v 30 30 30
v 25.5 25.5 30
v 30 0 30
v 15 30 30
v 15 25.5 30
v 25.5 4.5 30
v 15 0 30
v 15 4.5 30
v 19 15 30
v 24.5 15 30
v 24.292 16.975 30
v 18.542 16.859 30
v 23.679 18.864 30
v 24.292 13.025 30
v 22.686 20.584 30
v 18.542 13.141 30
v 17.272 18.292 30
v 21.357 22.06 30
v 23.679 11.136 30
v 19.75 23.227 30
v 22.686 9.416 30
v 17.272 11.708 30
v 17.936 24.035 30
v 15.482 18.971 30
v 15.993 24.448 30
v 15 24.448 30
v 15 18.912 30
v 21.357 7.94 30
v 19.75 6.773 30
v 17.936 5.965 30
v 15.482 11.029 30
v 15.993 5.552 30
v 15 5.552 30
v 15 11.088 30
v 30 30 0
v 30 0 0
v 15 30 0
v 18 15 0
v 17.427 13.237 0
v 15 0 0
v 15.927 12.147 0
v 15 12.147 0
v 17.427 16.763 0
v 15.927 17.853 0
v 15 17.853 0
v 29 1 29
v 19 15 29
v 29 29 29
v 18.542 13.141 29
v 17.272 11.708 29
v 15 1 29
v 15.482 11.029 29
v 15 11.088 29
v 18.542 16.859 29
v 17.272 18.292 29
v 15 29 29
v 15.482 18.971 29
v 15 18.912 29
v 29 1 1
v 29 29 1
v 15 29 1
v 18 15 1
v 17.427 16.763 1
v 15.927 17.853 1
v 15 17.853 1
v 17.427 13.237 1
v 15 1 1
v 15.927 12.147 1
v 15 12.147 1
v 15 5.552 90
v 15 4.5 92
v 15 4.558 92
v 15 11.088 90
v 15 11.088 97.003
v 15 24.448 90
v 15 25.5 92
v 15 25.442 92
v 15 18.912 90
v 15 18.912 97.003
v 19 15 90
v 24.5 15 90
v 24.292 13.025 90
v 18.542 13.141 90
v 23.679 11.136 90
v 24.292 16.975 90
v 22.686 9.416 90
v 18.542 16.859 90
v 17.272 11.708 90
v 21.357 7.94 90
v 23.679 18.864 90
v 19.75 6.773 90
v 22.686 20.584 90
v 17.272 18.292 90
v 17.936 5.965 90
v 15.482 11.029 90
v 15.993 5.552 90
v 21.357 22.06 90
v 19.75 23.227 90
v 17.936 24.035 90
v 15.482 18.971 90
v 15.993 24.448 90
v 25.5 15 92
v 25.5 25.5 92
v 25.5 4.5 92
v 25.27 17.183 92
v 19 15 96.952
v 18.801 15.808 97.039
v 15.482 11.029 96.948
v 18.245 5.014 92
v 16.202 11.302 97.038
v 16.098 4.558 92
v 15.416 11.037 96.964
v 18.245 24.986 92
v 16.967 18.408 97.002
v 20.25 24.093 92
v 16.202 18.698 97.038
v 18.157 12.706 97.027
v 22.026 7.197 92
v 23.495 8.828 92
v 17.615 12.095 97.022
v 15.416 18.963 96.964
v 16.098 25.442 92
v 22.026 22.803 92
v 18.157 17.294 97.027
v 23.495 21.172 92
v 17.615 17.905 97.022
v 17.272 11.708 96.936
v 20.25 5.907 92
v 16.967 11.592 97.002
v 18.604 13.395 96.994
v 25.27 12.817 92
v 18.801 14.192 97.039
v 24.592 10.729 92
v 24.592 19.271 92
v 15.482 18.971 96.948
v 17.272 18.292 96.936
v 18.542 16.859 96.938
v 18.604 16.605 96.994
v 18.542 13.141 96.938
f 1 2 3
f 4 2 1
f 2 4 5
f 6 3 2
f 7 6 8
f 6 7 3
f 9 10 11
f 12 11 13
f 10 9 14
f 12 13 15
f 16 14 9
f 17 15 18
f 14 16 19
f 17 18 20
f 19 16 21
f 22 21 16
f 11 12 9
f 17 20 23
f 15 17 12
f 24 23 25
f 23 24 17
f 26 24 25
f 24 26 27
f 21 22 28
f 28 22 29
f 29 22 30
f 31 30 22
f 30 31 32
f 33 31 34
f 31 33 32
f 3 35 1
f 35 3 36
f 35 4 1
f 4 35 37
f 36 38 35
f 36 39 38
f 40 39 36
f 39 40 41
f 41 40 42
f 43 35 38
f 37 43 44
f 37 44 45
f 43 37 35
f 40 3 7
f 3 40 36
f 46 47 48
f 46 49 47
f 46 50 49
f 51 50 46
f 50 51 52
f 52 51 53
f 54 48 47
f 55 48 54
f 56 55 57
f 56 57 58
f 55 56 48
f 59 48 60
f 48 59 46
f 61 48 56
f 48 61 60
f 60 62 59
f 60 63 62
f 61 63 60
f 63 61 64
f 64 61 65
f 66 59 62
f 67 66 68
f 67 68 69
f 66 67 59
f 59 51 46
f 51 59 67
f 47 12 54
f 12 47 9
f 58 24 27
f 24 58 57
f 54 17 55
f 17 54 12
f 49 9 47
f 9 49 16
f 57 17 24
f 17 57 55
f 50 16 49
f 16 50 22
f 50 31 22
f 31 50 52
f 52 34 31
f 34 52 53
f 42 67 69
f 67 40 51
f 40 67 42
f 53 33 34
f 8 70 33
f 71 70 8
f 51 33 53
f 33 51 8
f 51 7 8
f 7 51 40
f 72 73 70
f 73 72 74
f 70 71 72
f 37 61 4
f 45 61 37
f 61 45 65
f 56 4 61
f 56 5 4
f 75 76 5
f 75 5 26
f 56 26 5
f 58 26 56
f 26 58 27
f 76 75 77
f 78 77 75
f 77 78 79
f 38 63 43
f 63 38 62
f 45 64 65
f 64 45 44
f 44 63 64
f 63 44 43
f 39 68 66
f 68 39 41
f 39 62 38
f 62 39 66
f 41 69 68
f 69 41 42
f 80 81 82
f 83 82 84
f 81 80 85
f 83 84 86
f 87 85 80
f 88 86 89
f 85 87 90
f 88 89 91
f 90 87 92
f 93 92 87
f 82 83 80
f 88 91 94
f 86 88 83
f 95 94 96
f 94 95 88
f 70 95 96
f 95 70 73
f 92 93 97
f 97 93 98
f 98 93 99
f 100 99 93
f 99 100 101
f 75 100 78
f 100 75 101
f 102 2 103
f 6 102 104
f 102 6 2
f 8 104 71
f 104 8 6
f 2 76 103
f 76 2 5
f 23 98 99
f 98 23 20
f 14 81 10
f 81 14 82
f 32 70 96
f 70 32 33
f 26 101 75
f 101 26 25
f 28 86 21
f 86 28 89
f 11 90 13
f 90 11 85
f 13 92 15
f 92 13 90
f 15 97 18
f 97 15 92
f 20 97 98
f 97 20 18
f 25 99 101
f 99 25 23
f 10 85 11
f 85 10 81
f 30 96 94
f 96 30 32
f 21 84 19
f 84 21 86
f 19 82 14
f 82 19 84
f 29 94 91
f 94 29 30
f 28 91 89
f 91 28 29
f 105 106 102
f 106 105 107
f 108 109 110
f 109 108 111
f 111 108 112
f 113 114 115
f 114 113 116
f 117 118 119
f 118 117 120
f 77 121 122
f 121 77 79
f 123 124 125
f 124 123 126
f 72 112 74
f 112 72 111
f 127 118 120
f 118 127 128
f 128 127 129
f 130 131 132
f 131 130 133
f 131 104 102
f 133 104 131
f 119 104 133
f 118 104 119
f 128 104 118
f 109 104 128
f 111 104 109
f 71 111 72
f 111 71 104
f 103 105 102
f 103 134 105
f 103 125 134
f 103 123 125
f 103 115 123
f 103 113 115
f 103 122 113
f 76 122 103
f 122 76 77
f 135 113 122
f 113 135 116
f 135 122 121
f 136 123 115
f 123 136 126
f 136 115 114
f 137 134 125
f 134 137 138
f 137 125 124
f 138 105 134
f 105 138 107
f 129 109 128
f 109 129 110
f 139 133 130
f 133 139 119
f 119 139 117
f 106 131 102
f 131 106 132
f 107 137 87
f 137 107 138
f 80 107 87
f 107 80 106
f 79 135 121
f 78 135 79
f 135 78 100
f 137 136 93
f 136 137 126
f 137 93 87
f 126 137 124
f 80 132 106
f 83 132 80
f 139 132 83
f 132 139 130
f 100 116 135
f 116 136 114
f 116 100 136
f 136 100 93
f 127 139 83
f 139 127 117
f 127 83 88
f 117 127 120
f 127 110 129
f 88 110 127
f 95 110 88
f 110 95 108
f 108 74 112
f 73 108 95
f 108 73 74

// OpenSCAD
// All units are in millimeters
bearing_outer_diameter = 19;
axle_diameter = 6+2; // M6 = 6mm
margin = 2; // How thick the walls should be
  
bottom_height = 30;
bottom_width = 30;

houder_width = bearing_outer_diameter + margin;
houder_height = 60;

module cap(width) {
    height = 2;
    cone_height = height * 4;
    difference() {
        union() {
            translate([width/2, width/2, height])
                cylinder(h=cone_height, r1=width/2, r2=0);
            cube([width, width, height]);
        }
        translate([width/2, width/2])
            cylinder(h=height*10, r1=axle_diameter/2, r2=axle_diameter/2);
        cube([width/2, width, cone_height]);
    }
}

module bottom(height, width, wiring_hole_diameter=6) {
    difference() {
        cube([width, width, height]);
        translate([margin/2, margin/2, margin/2])
            cube([width-margin, width-margin, height-margin]);

        translate([width/2, width/2, height/2])
            cylinder(h=height, r1=axle_diameter/2, r2=axle_diameter/2);
        cube([width/2, width, height]);
        
        translate([width/2, width/2 , -height/2])
            cylinder(h=height, r1=wiring_hole_diameter/2, r2=wiring_hole_diameter/2);
    }
}

module houder(height = 40, width=40) {  
    difference() {
        cube([width, width, height]);
        translate([width/2, width/2])
            cylinder(h=height, r1=bearing_outer_diameter/2, r2=bearing_outer_diameter/2);
        cube([width/2, width, height]);
    }
}

union() {
    // Bottom part
    bottom(height=bottom_height, width=bottom_width);
    // Middle part
    translate([bottom_width/2-houder_width/2, bottom_width/2-houder_width/2, bottom_height])
        houder(height=houder_height, width=houder_width);
    // Cap
    translate([bottom_width/2-houder_width/2, bottom_width/2-houder_width/2, houder_height + bottom_height]) 
        cap(width=bearing_outer_diameter + margin);
}
